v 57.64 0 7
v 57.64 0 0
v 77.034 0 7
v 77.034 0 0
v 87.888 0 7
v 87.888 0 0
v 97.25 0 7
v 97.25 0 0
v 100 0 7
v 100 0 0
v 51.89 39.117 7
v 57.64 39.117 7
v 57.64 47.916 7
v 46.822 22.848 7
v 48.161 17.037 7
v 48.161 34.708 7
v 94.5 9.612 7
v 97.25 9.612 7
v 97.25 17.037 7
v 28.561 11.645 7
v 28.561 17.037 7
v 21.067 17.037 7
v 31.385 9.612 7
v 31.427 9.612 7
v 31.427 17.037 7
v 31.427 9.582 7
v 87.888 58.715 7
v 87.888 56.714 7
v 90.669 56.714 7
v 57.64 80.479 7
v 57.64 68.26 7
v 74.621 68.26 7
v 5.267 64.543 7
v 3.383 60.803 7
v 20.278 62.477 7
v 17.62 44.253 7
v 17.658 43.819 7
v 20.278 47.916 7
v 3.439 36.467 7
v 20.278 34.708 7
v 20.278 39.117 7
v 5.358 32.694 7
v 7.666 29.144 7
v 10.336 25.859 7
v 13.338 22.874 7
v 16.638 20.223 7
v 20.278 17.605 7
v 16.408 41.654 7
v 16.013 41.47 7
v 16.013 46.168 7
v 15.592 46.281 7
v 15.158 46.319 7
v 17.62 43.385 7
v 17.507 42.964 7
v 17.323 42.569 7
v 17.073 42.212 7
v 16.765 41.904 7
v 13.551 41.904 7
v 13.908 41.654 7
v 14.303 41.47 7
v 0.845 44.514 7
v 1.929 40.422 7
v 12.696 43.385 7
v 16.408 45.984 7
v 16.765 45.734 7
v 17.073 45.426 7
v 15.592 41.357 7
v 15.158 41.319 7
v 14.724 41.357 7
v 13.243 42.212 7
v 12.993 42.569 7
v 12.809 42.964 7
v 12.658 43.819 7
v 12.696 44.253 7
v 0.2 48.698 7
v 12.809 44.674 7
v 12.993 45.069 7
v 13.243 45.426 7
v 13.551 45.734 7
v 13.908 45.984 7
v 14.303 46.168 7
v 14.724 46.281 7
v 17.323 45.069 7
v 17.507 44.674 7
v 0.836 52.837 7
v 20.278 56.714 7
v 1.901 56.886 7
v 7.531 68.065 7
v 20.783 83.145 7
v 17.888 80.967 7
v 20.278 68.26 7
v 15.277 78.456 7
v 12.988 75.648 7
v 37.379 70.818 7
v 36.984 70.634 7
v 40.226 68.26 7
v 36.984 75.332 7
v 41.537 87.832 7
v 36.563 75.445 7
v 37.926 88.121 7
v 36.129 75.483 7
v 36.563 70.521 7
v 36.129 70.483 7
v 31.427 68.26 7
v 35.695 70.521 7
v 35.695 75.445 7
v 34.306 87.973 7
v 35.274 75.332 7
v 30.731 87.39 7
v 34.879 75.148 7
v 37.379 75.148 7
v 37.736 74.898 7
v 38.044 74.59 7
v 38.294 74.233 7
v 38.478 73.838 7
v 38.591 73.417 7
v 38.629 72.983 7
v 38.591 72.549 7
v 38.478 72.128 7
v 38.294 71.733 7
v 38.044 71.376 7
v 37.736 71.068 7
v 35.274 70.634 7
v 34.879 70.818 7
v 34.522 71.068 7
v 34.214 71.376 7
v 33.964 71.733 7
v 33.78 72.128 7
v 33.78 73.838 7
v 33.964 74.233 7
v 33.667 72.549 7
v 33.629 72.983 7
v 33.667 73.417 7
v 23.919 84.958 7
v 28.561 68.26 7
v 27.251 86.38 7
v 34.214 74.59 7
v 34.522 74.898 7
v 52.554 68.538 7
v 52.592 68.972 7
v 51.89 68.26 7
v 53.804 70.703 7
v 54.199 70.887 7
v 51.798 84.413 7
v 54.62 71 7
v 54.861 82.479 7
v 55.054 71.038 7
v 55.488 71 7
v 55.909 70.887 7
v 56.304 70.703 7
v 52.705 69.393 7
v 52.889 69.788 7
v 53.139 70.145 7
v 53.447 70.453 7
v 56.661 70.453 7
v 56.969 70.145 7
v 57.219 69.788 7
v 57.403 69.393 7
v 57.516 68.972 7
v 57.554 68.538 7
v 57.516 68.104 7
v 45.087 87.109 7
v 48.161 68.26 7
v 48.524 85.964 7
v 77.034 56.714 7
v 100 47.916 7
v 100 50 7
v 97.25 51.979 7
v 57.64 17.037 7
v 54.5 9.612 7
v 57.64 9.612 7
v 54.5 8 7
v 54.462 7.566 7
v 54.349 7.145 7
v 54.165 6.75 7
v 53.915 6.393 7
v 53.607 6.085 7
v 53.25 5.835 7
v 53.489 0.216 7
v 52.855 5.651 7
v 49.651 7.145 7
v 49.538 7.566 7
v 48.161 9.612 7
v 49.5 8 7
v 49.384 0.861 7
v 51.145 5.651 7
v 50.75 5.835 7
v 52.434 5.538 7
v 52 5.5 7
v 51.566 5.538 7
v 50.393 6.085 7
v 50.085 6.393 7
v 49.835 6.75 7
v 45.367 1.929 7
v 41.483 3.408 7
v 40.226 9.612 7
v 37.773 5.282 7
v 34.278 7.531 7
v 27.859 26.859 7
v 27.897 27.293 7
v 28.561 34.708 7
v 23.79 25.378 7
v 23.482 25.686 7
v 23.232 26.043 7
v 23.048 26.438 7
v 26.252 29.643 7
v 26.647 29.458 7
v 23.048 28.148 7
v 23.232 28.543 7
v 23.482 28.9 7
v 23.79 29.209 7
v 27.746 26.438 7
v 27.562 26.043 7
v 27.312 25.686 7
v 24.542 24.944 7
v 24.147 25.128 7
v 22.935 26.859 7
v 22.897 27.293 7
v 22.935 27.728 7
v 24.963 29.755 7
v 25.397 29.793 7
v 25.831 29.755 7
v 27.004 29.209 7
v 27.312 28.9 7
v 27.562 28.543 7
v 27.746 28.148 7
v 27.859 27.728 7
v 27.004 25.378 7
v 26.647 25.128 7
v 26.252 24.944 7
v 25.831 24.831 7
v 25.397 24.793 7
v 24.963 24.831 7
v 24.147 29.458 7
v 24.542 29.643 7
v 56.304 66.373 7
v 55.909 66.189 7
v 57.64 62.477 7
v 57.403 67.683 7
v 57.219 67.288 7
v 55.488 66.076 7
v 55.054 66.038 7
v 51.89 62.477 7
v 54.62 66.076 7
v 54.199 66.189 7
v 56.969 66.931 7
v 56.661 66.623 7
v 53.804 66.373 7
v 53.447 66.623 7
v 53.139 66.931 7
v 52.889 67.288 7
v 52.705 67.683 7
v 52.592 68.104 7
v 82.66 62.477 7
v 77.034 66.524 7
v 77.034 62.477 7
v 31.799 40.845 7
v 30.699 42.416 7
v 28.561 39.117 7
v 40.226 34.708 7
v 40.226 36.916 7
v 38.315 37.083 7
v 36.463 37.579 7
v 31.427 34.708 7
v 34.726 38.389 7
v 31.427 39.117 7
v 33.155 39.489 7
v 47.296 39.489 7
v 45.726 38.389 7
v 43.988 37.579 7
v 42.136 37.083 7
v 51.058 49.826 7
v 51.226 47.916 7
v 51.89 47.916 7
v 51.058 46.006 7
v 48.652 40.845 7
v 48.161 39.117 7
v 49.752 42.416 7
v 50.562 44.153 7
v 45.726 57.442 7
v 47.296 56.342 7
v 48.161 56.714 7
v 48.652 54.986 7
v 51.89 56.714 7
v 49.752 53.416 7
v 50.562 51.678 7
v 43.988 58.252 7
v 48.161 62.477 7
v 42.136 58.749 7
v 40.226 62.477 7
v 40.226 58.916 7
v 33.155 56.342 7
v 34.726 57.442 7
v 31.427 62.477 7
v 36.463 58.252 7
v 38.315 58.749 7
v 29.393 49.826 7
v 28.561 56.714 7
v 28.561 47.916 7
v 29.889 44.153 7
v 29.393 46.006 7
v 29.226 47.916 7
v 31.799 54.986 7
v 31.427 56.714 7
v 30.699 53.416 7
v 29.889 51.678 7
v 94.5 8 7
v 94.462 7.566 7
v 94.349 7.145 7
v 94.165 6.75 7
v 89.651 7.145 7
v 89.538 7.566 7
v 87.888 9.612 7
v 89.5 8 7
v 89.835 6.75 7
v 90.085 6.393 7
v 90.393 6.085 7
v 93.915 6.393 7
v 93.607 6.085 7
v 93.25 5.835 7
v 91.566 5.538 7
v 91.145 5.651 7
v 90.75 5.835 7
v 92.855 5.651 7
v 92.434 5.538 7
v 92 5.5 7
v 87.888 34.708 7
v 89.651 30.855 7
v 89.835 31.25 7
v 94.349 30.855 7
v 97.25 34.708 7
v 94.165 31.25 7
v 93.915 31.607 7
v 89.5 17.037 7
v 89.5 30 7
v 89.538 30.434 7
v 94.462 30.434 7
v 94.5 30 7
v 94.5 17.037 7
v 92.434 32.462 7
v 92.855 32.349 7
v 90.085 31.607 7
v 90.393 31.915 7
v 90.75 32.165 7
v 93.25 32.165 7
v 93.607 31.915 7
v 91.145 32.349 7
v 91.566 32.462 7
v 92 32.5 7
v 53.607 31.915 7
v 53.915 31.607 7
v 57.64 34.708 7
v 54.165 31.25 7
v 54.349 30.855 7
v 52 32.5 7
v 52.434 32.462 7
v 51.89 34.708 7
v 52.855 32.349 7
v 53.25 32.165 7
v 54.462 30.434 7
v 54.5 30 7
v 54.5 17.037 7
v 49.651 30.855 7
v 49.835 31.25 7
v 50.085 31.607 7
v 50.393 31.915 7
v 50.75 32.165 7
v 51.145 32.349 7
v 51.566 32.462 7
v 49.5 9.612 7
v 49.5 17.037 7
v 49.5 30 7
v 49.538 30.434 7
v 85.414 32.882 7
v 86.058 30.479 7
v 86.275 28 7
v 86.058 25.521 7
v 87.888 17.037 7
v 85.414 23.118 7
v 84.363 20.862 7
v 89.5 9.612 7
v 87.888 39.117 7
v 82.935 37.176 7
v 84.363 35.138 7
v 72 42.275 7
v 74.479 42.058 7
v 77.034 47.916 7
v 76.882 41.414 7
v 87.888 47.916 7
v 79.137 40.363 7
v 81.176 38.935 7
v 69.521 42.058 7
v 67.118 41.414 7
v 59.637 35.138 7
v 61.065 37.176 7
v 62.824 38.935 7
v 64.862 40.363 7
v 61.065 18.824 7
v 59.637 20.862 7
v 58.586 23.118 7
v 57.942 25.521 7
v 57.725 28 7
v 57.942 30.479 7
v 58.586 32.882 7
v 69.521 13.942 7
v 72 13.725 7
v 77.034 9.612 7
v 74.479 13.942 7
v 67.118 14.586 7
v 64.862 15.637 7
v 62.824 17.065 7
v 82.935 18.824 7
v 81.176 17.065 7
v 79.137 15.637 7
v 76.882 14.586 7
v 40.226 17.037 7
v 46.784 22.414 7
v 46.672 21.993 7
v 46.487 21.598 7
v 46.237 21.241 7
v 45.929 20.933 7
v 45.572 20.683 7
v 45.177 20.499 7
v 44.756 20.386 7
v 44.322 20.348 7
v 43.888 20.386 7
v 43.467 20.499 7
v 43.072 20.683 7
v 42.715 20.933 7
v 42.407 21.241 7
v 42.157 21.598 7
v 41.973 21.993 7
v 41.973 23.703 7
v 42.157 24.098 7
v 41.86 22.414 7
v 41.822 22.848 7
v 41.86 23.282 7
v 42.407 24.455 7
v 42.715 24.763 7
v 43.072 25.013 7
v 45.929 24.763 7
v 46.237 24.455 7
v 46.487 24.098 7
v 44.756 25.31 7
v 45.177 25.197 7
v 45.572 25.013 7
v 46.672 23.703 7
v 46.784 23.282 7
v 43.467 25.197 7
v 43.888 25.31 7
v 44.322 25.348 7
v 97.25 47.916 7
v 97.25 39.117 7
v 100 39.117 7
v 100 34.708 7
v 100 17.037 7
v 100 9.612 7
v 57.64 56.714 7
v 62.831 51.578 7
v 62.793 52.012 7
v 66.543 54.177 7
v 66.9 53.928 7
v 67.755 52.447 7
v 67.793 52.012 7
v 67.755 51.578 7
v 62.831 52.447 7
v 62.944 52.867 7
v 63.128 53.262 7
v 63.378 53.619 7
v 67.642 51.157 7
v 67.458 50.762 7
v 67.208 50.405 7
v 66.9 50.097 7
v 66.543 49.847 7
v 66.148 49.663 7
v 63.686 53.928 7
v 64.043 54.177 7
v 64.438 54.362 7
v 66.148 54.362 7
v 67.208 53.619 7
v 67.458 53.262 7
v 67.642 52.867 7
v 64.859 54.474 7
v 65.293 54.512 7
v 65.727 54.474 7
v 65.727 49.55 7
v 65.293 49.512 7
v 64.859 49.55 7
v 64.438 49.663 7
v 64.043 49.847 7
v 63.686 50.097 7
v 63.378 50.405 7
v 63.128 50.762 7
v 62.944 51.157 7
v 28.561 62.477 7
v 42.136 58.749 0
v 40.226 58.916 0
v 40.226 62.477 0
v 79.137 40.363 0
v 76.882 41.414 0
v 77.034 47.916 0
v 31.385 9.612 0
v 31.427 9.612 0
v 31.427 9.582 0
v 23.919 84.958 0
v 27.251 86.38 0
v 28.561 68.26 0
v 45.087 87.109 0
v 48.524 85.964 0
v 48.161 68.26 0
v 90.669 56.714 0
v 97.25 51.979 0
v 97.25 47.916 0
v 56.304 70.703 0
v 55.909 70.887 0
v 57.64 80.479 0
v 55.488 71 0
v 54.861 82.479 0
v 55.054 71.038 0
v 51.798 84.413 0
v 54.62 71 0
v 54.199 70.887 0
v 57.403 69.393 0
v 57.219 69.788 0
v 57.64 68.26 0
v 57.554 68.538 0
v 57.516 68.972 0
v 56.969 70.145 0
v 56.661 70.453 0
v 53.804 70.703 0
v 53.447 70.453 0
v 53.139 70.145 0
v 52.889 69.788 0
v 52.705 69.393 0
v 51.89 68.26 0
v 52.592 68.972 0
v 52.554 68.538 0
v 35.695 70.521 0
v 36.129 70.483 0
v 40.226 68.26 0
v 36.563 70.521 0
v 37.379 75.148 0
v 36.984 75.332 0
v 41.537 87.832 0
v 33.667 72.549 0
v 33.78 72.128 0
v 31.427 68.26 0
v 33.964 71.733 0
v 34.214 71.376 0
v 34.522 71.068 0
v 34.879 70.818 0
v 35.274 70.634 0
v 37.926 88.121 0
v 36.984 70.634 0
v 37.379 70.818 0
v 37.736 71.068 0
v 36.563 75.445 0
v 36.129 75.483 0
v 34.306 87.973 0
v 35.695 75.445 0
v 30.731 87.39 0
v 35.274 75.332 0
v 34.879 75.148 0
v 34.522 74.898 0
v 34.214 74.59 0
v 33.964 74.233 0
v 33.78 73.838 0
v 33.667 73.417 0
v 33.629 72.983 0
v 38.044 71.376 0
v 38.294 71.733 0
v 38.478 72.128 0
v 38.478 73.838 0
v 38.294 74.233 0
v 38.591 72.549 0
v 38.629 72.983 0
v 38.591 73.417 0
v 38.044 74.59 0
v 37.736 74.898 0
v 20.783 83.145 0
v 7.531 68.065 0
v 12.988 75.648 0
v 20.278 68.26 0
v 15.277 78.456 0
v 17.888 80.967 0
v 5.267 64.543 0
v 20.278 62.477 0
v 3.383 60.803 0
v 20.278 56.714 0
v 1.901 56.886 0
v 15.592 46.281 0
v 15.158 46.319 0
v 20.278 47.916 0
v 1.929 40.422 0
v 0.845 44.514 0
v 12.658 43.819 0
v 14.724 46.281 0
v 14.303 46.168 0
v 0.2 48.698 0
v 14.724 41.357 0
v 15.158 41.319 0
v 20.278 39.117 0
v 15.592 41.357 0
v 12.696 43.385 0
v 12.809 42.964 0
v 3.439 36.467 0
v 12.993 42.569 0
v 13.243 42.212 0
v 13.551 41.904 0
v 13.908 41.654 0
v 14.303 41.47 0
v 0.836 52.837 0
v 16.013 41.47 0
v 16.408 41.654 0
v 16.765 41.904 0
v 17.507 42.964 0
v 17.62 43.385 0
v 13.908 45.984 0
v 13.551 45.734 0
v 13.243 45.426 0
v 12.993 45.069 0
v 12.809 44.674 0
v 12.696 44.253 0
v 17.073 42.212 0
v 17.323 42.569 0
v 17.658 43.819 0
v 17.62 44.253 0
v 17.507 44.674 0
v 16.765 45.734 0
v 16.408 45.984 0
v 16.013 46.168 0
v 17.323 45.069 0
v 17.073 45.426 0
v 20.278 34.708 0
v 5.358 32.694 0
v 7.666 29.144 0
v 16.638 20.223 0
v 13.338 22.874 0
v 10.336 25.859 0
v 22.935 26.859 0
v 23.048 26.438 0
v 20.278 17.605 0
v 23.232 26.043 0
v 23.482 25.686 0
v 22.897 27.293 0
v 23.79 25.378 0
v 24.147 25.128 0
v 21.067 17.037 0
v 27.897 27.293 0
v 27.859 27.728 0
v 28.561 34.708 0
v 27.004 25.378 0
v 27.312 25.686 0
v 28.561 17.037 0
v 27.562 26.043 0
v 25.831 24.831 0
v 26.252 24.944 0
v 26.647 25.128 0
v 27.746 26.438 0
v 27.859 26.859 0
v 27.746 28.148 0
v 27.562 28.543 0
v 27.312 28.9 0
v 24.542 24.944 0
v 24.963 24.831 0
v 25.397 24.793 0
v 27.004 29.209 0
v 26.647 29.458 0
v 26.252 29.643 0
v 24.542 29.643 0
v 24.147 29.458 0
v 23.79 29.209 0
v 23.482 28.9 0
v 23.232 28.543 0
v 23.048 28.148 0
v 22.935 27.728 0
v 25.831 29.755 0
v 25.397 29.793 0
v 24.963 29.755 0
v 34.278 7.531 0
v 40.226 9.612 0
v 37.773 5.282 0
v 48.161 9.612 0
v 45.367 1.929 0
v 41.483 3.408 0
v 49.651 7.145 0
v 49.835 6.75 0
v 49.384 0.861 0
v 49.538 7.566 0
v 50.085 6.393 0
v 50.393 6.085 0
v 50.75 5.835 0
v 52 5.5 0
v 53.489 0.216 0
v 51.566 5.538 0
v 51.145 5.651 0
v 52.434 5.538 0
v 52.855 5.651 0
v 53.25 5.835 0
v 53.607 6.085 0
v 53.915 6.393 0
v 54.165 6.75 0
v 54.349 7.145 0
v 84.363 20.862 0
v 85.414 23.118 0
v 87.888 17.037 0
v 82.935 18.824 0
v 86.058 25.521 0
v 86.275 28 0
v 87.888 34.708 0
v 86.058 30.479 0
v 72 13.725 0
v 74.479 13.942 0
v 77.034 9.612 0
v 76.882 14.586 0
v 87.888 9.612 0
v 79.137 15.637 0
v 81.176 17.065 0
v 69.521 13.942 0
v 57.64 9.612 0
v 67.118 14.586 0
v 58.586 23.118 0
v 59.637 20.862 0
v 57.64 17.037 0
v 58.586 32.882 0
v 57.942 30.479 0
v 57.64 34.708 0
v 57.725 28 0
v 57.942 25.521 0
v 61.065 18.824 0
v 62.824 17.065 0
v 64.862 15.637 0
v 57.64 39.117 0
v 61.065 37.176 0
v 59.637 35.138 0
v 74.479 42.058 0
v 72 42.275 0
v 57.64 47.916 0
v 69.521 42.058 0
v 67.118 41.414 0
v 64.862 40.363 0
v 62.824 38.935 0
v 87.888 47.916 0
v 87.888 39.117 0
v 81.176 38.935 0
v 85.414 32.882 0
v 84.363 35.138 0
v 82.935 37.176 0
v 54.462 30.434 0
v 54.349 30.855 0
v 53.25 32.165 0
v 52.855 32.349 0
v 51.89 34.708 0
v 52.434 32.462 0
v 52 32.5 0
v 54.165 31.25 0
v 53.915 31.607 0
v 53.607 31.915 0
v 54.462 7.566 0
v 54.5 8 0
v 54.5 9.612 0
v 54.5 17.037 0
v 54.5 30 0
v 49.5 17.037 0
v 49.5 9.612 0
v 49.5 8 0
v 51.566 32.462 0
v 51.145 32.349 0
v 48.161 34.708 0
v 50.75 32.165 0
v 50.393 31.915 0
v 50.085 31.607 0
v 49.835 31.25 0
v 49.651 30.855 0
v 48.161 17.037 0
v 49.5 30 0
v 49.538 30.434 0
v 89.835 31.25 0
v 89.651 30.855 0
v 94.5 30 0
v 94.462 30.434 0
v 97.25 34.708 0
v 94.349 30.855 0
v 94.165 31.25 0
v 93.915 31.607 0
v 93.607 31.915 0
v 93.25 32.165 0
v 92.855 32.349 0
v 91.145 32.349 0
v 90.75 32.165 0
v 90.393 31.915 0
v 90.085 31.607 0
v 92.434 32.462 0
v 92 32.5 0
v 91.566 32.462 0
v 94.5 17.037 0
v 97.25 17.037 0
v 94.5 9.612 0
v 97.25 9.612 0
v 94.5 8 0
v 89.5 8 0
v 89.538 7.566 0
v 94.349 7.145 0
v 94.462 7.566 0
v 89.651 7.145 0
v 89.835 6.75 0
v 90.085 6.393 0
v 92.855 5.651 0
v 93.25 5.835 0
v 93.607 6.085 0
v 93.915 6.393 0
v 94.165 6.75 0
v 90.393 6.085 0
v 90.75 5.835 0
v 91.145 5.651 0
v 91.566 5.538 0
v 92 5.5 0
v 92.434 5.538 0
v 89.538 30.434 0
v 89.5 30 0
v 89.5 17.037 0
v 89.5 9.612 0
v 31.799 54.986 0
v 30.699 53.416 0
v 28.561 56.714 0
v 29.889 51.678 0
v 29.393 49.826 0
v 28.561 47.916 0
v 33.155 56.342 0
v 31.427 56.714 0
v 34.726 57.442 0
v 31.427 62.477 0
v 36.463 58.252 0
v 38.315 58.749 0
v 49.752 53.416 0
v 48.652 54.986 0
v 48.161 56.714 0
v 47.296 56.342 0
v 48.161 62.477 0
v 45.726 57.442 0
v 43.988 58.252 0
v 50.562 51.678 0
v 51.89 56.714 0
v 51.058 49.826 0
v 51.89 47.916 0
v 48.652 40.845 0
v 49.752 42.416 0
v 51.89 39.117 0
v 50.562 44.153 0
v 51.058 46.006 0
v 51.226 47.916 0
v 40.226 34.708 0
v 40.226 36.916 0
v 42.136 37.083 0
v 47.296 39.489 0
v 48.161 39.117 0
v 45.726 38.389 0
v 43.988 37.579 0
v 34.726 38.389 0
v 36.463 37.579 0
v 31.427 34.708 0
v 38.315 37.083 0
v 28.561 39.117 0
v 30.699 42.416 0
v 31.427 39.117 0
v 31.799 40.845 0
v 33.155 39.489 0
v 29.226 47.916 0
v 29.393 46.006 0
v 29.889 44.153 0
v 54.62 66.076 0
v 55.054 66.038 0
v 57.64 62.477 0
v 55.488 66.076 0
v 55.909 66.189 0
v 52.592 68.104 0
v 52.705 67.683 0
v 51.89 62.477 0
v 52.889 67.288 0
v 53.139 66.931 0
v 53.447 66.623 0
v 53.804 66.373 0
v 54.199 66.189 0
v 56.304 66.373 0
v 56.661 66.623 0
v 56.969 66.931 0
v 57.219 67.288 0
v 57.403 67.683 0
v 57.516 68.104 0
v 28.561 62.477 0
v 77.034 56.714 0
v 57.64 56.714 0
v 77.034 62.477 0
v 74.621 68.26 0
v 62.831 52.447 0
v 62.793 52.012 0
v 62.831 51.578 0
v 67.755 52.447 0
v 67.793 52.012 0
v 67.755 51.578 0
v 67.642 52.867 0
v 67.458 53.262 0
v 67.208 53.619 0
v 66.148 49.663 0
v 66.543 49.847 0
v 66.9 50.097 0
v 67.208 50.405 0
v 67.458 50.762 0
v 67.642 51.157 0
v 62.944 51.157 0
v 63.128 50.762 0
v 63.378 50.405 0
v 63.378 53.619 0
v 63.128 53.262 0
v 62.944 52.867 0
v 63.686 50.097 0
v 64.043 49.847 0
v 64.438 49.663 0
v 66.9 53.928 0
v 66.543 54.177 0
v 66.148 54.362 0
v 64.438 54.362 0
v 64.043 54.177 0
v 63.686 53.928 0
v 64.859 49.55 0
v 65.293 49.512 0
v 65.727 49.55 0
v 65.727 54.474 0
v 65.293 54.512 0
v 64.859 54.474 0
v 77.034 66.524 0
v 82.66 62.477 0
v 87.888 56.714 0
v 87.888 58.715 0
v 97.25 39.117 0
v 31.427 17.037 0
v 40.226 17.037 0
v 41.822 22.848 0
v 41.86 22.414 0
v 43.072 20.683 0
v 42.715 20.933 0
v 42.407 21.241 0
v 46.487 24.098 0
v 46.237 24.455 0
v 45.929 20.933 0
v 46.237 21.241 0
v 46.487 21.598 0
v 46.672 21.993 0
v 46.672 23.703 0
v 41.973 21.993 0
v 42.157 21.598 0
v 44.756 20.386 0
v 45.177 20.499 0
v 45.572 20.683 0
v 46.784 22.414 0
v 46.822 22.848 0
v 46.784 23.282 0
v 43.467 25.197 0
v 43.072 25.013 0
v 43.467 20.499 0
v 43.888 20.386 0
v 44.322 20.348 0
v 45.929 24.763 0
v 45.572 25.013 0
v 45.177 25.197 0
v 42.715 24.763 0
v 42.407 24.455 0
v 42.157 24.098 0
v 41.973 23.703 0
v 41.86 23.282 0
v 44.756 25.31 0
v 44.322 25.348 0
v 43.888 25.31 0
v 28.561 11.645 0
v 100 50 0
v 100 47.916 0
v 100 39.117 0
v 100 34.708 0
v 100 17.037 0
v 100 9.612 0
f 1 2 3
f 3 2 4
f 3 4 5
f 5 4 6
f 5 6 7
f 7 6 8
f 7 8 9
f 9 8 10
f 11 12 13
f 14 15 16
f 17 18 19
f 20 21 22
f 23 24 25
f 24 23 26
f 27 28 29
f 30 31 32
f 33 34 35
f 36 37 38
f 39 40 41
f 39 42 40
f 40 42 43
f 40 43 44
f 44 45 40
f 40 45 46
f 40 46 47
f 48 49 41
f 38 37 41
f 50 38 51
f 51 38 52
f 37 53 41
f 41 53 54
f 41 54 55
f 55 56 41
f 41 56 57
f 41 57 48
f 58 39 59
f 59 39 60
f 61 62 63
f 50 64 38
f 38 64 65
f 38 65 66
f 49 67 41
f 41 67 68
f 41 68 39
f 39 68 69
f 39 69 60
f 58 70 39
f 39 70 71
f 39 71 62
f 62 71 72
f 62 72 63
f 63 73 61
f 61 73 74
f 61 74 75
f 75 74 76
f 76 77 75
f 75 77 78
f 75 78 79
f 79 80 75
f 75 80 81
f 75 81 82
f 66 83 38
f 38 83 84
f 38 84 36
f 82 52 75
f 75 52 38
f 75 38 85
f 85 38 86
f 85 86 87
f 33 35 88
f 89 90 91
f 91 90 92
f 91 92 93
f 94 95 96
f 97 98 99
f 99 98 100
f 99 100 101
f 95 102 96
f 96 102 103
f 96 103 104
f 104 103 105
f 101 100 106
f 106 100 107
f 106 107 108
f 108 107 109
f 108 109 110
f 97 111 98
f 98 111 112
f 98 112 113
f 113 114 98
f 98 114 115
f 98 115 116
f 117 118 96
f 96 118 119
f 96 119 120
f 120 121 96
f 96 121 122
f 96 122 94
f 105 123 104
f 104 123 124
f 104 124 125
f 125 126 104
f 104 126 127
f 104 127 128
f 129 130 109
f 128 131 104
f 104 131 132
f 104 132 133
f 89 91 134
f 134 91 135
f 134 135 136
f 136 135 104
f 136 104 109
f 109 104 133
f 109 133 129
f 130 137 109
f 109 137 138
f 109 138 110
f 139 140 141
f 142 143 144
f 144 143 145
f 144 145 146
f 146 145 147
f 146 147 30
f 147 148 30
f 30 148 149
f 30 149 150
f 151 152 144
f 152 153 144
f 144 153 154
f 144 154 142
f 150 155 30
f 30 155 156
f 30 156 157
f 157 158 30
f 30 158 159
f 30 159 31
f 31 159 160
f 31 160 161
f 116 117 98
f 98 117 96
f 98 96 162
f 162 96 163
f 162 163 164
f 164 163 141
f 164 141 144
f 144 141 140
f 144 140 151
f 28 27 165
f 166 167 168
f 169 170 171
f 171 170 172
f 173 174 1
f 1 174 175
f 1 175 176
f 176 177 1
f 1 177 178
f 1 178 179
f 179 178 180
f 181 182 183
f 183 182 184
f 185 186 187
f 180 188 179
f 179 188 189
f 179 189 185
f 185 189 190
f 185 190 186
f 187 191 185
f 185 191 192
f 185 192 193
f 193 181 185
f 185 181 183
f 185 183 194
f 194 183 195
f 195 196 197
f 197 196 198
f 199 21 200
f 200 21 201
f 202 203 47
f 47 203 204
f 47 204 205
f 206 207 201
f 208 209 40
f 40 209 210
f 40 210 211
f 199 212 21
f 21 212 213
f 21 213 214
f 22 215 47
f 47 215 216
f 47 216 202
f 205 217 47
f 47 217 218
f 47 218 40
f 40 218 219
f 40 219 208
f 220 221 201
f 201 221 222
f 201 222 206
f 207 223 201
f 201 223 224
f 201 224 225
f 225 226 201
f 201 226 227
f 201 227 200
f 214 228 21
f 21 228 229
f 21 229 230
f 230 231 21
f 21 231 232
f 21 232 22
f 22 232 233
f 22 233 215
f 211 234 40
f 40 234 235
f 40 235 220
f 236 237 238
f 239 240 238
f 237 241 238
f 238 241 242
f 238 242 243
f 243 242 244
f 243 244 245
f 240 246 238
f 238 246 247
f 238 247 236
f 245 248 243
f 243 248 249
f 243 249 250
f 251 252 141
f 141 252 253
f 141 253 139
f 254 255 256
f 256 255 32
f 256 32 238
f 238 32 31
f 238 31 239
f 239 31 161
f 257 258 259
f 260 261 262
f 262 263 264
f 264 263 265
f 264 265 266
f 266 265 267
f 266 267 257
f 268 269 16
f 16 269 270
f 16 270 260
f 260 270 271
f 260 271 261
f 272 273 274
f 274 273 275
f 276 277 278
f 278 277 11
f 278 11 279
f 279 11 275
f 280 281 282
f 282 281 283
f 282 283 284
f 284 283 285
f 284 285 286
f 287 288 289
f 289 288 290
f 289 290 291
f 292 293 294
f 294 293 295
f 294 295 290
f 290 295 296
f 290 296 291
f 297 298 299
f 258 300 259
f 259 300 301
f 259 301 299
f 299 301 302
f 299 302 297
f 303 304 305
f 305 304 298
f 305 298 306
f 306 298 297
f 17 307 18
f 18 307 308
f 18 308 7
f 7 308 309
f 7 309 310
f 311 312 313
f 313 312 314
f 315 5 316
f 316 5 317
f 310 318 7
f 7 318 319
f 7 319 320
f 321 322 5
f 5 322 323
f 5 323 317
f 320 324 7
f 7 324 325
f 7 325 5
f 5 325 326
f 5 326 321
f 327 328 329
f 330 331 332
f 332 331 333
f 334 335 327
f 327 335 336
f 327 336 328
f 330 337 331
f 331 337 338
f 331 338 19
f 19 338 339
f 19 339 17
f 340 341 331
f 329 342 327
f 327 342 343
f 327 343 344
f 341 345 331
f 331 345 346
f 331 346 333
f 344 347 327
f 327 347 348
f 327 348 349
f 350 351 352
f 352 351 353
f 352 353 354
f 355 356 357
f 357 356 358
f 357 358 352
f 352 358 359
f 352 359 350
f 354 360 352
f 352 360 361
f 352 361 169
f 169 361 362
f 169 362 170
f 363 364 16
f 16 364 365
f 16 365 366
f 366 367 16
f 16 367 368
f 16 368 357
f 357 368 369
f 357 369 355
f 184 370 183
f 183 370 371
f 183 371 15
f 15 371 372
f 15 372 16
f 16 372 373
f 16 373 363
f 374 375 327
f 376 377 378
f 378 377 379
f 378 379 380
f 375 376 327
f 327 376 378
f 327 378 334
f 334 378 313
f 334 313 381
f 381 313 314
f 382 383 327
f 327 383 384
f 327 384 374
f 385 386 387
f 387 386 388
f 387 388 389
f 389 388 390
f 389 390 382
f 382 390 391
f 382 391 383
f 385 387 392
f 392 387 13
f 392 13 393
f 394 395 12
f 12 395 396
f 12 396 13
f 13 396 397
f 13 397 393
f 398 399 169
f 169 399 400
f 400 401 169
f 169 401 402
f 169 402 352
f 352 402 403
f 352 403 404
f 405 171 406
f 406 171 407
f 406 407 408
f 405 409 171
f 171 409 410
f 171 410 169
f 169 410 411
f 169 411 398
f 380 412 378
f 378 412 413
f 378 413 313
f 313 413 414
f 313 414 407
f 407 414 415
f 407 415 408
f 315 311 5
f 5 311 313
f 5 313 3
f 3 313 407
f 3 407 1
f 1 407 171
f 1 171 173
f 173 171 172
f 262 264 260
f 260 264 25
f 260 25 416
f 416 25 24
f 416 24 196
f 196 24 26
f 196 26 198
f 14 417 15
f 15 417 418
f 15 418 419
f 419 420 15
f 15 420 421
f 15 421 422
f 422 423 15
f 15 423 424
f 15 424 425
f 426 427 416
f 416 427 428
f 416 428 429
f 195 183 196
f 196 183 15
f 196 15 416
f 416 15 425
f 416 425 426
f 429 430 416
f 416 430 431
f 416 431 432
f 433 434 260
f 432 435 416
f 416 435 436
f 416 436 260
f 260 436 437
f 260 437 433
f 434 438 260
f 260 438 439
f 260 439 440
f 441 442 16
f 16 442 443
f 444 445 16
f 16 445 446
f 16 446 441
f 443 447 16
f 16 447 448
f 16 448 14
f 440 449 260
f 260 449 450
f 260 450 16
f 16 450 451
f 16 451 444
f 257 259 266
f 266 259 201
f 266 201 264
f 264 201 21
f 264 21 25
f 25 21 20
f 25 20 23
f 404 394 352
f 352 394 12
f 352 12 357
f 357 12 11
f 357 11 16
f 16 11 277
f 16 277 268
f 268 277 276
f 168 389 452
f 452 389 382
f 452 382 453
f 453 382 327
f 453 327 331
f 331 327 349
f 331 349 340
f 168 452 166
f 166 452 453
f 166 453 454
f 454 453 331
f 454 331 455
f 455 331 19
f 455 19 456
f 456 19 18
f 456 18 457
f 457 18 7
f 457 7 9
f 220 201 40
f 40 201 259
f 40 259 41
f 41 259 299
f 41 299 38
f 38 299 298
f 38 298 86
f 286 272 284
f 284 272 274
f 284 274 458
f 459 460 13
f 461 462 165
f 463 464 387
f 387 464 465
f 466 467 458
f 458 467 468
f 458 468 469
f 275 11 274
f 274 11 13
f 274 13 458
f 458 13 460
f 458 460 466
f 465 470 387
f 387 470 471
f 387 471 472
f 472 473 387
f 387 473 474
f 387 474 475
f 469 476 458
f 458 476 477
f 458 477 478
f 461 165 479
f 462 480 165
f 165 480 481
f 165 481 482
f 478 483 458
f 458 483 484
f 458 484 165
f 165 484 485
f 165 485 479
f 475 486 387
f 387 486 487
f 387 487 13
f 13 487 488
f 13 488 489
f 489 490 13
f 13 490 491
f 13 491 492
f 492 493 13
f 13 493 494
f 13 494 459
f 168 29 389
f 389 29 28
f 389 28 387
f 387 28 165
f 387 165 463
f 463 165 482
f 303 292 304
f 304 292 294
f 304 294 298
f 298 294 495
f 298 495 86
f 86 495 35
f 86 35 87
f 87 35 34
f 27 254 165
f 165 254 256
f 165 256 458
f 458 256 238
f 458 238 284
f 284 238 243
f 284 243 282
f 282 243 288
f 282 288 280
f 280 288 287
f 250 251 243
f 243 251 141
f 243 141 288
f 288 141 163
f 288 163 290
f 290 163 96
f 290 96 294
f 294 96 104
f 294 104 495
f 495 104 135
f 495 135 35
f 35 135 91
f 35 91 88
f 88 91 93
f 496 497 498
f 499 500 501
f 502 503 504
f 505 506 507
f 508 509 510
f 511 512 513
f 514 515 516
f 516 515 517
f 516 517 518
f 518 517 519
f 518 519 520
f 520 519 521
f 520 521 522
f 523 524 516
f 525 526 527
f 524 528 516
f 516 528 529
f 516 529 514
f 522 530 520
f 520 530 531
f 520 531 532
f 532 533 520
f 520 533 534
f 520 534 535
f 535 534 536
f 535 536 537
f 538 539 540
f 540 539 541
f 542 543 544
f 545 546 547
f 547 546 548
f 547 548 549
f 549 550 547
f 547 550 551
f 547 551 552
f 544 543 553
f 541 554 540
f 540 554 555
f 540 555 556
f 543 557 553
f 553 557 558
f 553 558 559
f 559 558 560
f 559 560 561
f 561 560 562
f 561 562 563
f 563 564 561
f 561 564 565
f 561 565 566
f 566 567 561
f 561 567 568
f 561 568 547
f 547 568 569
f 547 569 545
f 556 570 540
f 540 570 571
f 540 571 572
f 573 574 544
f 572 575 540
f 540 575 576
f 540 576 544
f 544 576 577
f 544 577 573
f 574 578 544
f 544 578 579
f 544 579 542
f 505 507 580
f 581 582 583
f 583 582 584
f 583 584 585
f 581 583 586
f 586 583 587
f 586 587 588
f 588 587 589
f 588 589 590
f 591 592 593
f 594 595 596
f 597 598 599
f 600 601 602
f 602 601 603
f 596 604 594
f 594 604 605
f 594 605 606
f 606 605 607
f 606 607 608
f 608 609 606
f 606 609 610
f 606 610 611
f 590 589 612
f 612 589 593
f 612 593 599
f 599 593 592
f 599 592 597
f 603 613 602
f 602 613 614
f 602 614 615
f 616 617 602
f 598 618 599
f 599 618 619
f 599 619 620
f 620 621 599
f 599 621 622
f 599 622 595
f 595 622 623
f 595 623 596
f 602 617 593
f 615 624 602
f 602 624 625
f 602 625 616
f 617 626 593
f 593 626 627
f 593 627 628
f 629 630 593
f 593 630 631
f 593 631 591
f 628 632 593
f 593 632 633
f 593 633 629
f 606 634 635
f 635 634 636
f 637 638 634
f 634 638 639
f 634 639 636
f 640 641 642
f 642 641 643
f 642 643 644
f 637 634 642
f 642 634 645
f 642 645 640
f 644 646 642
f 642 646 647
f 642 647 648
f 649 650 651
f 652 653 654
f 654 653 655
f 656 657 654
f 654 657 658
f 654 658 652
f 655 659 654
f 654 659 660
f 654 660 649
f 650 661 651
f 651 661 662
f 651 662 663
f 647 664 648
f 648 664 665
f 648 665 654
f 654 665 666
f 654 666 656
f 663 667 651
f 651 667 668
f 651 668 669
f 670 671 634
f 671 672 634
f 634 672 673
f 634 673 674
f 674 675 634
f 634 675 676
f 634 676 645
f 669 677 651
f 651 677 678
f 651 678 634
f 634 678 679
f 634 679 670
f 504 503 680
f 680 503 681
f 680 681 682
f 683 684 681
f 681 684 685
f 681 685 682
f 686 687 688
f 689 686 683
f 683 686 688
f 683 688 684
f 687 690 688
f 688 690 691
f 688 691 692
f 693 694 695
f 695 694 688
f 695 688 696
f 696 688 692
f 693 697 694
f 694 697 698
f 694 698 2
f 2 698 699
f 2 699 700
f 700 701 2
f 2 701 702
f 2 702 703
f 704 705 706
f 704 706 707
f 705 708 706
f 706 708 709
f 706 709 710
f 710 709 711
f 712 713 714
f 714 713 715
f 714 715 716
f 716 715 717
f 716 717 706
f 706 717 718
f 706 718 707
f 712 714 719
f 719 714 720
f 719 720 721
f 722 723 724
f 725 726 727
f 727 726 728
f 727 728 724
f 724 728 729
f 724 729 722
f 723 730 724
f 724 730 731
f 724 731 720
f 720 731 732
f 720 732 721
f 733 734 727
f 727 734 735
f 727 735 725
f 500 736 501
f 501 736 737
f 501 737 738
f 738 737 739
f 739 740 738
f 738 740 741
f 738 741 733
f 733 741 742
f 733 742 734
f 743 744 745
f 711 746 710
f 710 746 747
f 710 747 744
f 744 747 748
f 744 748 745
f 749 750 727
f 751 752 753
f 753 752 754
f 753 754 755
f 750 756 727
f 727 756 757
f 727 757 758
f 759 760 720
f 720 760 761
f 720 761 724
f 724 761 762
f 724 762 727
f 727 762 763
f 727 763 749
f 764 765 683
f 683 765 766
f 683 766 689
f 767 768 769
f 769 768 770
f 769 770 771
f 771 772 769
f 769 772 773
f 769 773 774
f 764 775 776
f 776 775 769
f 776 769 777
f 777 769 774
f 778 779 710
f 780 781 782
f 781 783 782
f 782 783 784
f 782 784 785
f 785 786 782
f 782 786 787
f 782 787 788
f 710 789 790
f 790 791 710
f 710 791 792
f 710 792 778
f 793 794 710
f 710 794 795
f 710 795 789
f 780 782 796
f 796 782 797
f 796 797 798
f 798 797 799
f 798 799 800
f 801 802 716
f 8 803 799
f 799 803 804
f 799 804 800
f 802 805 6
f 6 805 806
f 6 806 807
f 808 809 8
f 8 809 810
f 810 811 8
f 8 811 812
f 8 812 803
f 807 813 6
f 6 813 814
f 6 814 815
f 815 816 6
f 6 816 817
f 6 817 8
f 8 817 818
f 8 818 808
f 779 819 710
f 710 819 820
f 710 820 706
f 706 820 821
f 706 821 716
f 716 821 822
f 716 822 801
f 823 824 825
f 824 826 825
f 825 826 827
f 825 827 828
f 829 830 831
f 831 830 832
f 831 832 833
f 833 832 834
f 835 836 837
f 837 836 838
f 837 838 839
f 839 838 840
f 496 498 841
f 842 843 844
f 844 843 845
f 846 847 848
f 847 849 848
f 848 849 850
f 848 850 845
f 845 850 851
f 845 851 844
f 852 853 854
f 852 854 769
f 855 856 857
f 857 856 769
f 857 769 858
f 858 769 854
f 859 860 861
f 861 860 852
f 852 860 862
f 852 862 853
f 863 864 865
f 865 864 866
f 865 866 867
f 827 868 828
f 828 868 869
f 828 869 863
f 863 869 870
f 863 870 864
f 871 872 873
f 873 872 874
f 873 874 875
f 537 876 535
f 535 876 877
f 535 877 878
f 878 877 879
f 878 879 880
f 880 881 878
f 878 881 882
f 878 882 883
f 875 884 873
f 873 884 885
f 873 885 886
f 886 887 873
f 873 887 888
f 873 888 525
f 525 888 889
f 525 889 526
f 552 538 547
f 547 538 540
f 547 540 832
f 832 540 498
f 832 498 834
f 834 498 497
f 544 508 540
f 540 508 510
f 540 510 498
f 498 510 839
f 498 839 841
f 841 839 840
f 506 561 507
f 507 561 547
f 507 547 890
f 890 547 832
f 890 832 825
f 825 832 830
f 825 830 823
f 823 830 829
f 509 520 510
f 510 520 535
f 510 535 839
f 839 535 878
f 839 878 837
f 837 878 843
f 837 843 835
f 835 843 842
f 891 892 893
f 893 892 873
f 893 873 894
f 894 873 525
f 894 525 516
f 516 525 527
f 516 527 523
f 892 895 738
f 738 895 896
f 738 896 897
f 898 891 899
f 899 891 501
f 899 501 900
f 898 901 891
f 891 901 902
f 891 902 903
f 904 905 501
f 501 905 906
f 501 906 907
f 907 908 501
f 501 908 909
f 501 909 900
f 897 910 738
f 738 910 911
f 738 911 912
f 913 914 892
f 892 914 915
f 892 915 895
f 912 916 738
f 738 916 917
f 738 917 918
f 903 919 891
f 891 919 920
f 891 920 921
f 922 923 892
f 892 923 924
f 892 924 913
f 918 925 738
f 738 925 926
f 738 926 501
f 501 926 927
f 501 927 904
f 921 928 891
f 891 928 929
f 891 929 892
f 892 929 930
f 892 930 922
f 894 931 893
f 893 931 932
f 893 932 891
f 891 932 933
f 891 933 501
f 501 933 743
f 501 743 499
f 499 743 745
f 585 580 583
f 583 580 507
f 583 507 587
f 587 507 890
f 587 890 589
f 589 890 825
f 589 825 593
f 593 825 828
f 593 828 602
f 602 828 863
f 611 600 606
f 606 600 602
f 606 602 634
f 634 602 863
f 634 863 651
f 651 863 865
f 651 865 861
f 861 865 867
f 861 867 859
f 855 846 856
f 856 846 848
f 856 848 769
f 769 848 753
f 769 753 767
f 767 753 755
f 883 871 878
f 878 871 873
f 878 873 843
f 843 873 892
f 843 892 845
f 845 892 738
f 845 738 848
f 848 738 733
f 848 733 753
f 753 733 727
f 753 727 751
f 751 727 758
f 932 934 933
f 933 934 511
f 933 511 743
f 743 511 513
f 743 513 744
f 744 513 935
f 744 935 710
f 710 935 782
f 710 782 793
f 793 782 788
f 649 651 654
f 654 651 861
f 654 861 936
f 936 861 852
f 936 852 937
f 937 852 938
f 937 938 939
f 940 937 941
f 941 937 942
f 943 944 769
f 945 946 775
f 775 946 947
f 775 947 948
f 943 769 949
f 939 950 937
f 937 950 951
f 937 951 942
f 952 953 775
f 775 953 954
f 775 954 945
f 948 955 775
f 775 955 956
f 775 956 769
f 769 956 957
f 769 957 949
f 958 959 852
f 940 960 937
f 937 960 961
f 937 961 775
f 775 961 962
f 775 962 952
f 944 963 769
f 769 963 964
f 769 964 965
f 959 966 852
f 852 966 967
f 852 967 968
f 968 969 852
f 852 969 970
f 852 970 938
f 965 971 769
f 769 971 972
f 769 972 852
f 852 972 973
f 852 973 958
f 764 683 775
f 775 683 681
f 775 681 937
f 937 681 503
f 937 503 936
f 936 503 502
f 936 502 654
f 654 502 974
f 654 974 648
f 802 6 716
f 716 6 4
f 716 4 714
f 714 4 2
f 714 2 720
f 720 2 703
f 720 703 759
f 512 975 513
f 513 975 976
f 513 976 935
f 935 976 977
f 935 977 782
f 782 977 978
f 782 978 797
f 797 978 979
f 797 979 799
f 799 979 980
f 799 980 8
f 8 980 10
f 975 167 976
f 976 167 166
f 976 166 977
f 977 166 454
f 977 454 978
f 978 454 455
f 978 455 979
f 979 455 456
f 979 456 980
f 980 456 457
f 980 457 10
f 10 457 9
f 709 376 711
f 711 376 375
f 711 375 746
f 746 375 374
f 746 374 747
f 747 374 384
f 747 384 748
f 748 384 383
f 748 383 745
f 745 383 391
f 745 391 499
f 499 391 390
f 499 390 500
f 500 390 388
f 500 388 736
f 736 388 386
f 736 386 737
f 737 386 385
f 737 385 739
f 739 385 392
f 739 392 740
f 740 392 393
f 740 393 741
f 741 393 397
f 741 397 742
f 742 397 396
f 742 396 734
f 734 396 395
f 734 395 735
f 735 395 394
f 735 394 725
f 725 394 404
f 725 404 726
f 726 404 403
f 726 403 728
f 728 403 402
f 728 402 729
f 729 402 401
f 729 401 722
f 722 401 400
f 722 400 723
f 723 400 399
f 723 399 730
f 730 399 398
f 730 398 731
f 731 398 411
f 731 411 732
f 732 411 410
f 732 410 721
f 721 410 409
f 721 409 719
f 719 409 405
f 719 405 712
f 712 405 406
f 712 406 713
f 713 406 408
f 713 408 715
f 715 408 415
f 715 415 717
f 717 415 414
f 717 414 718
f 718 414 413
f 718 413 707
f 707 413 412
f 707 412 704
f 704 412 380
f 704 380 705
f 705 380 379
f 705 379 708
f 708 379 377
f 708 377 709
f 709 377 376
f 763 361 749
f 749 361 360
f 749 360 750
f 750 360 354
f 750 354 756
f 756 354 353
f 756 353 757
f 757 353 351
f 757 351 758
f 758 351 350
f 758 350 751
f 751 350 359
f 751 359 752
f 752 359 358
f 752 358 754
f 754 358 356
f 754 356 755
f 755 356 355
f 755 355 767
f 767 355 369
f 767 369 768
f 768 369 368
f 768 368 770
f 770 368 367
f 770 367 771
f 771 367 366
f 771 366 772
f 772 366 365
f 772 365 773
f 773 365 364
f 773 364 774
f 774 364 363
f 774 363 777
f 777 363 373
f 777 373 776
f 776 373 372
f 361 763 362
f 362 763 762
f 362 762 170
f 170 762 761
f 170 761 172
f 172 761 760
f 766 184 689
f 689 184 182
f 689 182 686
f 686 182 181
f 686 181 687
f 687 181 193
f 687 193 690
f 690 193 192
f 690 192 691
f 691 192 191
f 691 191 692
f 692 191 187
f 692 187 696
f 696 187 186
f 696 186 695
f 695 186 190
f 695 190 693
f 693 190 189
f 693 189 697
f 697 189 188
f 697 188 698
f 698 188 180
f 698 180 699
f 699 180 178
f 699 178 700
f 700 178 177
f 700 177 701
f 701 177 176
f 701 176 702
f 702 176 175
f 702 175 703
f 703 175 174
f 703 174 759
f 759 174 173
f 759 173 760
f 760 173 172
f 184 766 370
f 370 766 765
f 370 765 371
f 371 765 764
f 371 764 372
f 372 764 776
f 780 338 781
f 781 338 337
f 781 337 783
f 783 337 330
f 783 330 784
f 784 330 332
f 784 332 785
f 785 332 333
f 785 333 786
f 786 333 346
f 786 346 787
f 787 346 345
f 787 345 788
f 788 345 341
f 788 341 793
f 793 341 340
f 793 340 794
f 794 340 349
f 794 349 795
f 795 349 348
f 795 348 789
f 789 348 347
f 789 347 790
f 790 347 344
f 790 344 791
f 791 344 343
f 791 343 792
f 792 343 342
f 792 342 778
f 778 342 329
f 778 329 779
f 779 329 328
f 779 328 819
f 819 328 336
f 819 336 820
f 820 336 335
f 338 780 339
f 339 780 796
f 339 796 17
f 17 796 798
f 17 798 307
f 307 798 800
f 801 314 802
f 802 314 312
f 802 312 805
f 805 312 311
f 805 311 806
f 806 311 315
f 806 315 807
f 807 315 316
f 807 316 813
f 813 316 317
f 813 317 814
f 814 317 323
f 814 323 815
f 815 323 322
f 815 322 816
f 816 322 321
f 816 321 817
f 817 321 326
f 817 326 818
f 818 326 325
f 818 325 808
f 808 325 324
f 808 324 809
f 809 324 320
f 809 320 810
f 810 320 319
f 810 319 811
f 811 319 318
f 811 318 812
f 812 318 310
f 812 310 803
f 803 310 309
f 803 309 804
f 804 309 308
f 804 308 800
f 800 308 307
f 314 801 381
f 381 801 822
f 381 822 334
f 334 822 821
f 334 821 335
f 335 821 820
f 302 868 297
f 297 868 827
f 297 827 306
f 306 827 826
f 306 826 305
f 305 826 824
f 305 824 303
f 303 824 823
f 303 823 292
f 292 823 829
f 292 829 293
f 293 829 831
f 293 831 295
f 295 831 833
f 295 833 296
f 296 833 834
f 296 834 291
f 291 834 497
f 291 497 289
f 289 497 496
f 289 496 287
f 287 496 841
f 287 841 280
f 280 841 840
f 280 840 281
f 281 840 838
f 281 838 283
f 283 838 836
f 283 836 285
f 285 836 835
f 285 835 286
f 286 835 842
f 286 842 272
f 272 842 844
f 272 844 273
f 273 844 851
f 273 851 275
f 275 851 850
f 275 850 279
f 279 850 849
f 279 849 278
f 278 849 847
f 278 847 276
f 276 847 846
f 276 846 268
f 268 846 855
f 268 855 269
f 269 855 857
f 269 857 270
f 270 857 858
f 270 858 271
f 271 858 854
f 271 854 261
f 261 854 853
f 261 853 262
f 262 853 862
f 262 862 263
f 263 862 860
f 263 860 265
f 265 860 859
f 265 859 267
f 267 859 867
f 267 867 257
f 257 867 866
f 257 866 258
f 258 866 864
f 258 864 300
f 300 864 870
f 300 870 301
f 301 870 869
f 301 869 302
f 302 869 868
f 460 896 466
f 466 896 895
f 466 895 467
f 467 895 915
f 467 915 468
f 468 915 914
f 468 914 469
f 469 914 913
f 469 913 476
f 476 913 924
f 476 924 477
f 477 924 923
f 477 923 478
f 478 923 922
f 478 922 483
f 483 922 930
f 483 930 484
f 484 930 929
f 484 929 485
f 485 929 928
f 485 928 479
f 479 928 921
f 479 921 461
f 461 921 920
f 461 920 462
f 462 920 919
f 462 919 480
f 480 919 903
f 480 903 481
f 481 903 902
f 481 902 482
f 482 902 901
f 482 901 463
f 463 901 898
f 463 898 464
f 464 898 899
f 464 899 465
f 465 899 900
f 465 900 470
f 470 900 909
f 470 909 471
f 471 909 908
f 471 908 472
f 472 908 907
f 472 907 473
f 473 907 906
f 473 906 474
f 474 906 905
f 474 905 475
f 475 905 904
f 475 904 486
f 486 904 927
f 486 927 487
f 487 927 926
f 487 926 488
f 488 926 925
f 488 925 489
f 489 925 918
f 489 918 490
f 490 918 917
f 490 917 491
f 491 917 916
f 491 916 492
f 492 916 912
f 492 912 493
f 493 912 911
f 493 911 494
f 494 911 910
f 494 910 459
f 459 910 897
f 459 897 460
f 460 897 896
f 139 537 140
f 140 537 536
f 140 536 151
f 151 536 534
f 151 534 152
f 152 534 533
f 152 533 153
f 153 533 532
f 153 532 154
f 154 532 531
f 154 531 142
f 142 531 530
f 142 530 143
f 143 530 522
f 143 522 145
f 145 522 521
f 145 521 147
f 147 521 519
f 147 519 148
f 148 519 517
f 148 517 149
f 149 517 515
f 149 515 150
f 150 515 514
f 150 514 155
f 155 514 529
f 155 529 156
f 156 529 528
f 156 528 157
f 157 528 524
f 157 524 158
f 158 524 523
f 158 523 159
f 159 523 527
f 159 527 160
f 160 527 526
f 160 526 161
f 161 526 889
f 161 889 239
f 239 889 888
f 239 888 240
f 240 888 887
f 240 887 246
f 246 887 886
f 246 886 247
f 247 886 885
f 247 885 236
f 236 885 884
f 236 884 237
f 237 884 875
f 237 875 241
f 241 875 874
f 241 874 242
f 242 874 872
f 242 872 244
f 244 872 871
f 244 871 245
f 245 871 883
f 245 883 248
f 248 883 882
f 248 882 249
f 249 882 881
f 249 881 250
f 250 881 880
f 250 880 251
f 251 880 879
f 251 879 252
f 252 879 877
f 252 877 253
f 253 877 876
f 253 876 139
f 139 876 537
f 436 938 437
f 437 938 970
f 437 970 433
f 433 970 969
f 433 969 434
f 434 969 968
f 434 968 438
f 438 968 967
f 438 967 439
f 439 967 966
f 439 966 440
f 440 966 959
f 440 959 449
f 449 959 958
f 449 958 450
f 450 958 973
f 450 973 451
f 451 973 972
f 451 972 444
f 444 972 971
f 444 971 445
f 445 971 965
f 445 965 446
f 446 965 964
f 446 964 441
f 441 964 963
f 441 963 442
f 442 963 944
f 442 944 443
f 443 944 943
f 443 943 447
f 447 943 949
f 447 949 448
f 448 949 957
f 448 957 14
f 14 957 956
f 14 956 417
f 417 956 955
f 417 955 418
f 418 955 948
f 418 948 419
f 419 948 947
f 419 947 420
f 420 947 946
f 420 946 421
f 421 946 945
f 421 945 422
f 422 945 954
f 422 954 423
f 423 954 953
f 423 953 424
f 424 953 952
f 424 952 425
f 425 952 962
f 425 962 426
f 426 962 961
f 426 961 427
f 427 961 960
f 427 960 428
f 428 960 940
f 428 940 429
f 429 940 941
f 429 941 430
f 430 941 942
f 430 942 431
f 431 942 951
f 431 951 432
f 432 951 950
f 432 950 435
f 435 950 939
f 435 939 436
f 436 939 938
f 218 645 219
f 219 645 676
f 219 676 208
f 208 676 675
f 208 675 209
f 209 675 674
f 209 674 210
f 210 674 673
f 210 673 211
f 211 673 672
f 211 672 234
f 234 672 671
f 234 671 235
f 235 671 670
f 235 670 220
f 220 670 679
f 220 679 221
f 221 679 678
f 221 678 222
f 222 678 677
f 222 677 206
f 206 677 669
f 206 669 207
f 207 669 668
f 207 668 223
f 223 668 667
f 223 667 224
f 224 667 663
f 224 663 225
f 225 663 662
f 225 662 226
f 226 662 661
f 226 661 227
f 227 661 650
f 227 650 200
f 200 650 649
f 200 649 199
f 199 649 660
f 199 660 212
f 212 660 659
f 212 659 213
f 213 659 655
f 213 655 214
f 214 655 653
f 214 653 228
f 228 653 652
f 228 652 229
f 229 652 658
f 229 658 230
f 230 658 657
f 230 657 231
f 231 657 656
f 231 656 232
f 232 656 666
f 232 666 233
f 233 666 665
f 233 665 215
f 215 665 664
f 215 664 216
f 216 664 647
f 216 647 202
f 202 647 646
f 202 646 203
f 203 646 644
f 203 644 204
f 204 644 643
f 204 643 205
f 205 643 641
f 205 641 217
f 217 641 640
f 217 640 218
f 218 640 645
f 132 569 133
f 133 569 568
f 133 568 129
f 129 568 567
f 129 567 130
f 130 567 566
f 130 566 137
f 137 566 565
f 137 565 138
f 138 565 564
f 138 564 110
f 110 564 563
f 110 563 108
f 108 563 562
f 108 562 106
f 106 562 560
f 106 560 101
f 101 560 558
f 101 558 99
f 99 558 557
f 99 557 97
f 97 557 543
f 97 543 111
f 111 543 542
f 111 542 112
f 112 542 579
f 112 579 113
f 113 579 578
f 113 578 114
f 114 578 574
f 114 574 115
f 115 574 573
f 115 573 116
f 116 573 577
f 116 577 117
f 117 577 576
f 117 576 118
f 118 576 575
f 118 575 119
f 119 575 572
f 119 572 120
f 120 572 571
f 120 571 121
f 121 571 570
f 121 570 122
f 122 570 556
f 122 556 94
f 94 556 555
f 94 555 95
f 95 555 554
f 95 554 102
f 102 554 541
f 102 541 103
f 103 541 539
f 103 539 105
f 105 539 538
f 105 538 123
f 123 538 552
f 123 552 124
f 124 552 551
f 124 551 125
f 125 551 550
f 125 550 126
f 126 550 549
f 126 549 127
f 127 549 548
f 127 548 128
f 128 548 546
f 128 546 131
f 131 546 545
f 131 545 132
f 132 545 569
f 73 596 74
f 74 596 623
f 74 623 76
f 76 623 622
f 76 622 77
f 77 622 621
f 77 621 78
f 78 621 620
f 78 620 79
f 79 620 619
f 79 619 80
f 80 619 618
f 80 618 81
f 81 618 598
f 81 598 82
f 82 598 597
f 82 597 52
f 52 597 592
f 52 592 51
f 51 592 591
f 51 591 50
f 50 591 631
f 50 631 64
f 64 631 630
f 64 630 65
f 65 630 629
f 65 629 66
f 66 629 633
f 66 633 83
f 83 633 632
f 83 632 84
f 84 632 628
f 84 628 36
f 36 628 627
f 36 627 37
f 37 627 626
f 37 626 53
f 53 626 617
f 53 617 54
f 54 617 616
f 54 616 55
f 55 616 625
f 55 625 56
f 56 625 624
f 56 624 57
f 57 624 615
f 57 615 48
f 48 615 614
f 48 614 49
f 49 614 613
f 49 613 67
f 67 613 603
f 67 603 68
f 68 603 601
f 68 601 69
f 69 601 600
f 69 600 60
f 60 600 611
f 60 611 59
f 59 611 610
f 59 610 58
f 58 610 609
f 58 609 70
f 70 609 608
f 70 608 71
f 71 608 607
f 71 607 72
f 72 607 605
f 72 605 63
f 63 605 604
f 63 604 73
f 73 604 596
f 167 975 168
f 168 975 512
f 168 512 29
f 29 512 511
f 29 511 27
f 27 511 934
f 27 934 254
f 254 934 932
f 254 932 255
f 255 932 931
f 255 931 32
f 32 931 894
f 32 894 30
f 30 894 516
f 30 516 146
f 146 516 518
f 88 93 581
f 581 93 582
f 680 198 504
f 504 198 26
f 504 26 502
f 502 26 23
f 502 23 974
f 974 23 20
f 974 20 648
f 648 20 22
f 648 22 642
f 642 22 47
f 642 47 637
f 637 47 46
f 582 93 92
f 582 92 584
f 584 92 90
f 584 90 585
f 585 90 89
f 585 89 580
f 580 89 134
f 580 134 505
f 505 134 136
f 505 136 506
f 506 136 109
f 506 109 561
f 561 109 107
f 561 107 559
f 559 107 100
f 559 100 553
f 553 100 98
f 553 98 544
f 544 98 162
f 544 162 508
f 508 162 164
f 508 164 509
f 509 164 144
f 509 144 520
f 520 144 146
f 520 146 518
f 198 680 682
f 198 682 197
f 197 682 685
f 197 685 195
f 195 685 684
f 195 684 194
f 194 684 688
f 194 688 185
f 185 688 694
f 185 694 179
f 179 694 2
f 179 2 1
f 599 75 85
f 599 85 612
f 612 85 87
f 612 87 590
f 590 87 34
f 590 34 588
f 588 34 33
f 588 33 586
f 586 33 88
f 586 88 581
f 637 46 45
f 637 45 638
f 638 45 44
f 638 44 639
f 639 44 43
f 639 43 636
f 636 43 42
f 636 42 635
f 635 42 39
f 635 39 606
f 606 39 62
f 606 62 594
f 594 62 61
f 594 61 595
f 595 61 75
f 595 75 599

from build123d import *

# Parameters (mm, degrees)
SKETCH1_W               = 100
SKETCH1_H               = 100
BOSS_EXTRUDE1_DEPTH     = 7
SKETCH2_R               = 14.275
CUT_EXTRUDE1_DEPTH      = 142.594491418
SKETCH3_R               = 11
CUT_EXTRUDE2_DEPTH      = 10
SKETCH6_R               = 2.5
CUT_EXTRUDE3_DEPTH      = 142.594491418
CUT_EXTRUDE4_DEPTH      = 142.594491418
CUT_EXTRUDE4_DEPTH_BACK = 142.594491418
FILLET1_R               = 30
FILLET2_R               = 40


with BuildPart() as part:
    # Sketch1 → Boss-Extrude1 (new body)
    with BuildSketch(Plane.XY):
        with Locations((50, 50)):
            Rectangle(SKETCH1_W, SKETCH1_H)
    extrude(amount=BOSS_EXTRUDE1_DEPTH)

    # Sketch2 → Cut-Extrude1 (cut, through all)
    with BuildSketch(Plane.XY.offset(7)):
        with Locations((72, 28)):
            Circle(SKETCH2_R)
        with BuildLine():
            Line((54.5, 30), (54.5, 8))
            ThreePointArc((54.5, 8), (52, 5.5), (49.5, 8))
            Line((49.5, 8), (49.5, 30))
            ThreePointArc((49.5, 30), (52, 32.5), (54.5, 30))
        make_face()
        with BuildLine():
            Line((94.5, 30), (94.5, 8))
            ThreePointArc((94.5, 8), (92, 5.5), (89.5, 8))
            Line((89.5, 8), (89.5, 30))
            ThreePointArc((89.5, 30), (92, 32.5), (94.5, 30))
        make_face()
    extrude(amount=-CUT_EXTRUDE1_DEPTH, mode=Mode.SUBTRACT)

    # Sketch3 → Cut-Extrude2 (cut)
    with BuildSketch(Plane(origin=(0, 0, 0), x_dir=(-1, 0, 0), z_dir=(0, 0, -1))):
        with Locations((-40.225524413, 47.915639612)):
            Circle(SKETCH3_R)
    extrude(amount=-CUT_EXTRUDE2_DEPTH, mode=Mode.SUBTRACT)

    # Sketch6 → Cut-Extrude3 (cut, through all)
    with BuildSketch(Plane(origin=(0, 0, 0), x_dir=(-1, 0, 0), z_dir=(0, 0, -1))):
        with Locations((-15.158085821, 43.818869855)):
            Circle(SKETCH6_R)
        with Locations((-36.128754655, 72.983078204)):
            Circle(SKETCH6_R)
        with Locations((-25.397022274, 27.293430121)):
            Circle(SKETCH6_R)
        with Locations((-44.322294171, 22.848201021)):
            Circle(SKETCH6_R)
        with Locations((-55.054026552, 68.537849104)):
            Circle(SKETCH6_R)
        with Locations((-65.292963005, 52.01240937)):
            Circle(SKETCH6_R)
    extrude(amount=-CUT_EXTRUDE3_DEPTH, mode=Mode.SUBTRACT)

    # Sketch7 → Cut-Extrude4 (cut, two sides: drawn at the far end of the back side and taken through both)
    with BuildSketch(Plane(origin=(0, 0, 0), x_dir=(-1, 0, 0), z_dir=(0, 0, -1)).offset(-CUT_EXTRUDE4_DEPTH_BACK)):
        Polygon((-100, 100), (-100, 50), (-30.50895185, 100), align=None)
        Polygon((0, 100), (-30.50895185, 100), (0, 57.59801916), align=None)
        Polygon((0, 32.194859297), (-44.745090352, 0), (0, 0), align=None)
    extrude(amount=CUT_EXTRUDE4_DEPTH + CUT_EXTRUDE4_DEPTH_BACK, mode=Mode.SUBTRACT)

    # Fillet1
    fillet1_edges = [part.edges().sort_by_distance(p)[0] for p in [
        (30.50895185, 100, 3.5),
    ]]
    fillet(fillet1_edges, radius=FILLET1_R)

    # Fillet2
    # the kernel refuses this fillet: 40 mm, written as the material it takes off along each edge
    with BuildSketch(Plane(origin=(44.745090352, 0, 39.23712894), x_dir=(-0.8117201564538461, 0.5840465628753787, 0), z_dir=(0, 0, -1))) as fillet2_piece_1:
        with BuildLine():
            CenterArc((FILLET2_R * 0.322371289404, FILLET2_R), FILLET2_R, 234.264337428, 35.735662572)
            Line((-FILLET2_R * 0.261675273471, FILLET2_R * 0.188279843546), (0, 0))
            Line((0, 0), (FILLET2_R * 0.322371289404, 0))
        make_face()
    extrude(amount=71.474257881, mode=Mode.SUBTRACT)
    with BuildSketch(Plane(origin=(0, 32.194859297, -51.243453032), x_dir=(0, 1, 0), z_dir=(0, 0, 1))) as fillet2_piece_2:
        with BuildLine():
            CenterArc((FILLET2_R * 0.512434530321, -FILLET2_R), FILLET2_R, 90, 54.264337428)
            Line((-FILLET2_R * 0.299285626133, -FILLET2_R * 0.415953437125), (0, 0))
            Line((0, 0), (FILLET2_R * 0.512434530321, 0))
        make_face()
    extrude(amount=109.486906064, mode=Mode.SUBTRACT)
    with BuildSketch(Plane(origin=(0, 57.59801916, -32.23712894), x_dir=(0.5840465628753787, 0.8117201564538461, 0), z_dir=(0, 0, 1))) as fillet2_piece_3:
        with BuildLine():
            CenterArc((FILLET2_R * 0.322371289404, -FILLET2_R), FILLET2_R, 90, 35.735662572)
            Line((-FILLET2_R * 0.261675273471, -FILLET2_R * 0.188279843546), (0, 0))
            Line((0, 0), (FILLET2_R * 0.322371289404, 0))
        make_face()
    extrude(amount=71.474257881, mode=Mode.SUBTRACT)


solid = part.part
